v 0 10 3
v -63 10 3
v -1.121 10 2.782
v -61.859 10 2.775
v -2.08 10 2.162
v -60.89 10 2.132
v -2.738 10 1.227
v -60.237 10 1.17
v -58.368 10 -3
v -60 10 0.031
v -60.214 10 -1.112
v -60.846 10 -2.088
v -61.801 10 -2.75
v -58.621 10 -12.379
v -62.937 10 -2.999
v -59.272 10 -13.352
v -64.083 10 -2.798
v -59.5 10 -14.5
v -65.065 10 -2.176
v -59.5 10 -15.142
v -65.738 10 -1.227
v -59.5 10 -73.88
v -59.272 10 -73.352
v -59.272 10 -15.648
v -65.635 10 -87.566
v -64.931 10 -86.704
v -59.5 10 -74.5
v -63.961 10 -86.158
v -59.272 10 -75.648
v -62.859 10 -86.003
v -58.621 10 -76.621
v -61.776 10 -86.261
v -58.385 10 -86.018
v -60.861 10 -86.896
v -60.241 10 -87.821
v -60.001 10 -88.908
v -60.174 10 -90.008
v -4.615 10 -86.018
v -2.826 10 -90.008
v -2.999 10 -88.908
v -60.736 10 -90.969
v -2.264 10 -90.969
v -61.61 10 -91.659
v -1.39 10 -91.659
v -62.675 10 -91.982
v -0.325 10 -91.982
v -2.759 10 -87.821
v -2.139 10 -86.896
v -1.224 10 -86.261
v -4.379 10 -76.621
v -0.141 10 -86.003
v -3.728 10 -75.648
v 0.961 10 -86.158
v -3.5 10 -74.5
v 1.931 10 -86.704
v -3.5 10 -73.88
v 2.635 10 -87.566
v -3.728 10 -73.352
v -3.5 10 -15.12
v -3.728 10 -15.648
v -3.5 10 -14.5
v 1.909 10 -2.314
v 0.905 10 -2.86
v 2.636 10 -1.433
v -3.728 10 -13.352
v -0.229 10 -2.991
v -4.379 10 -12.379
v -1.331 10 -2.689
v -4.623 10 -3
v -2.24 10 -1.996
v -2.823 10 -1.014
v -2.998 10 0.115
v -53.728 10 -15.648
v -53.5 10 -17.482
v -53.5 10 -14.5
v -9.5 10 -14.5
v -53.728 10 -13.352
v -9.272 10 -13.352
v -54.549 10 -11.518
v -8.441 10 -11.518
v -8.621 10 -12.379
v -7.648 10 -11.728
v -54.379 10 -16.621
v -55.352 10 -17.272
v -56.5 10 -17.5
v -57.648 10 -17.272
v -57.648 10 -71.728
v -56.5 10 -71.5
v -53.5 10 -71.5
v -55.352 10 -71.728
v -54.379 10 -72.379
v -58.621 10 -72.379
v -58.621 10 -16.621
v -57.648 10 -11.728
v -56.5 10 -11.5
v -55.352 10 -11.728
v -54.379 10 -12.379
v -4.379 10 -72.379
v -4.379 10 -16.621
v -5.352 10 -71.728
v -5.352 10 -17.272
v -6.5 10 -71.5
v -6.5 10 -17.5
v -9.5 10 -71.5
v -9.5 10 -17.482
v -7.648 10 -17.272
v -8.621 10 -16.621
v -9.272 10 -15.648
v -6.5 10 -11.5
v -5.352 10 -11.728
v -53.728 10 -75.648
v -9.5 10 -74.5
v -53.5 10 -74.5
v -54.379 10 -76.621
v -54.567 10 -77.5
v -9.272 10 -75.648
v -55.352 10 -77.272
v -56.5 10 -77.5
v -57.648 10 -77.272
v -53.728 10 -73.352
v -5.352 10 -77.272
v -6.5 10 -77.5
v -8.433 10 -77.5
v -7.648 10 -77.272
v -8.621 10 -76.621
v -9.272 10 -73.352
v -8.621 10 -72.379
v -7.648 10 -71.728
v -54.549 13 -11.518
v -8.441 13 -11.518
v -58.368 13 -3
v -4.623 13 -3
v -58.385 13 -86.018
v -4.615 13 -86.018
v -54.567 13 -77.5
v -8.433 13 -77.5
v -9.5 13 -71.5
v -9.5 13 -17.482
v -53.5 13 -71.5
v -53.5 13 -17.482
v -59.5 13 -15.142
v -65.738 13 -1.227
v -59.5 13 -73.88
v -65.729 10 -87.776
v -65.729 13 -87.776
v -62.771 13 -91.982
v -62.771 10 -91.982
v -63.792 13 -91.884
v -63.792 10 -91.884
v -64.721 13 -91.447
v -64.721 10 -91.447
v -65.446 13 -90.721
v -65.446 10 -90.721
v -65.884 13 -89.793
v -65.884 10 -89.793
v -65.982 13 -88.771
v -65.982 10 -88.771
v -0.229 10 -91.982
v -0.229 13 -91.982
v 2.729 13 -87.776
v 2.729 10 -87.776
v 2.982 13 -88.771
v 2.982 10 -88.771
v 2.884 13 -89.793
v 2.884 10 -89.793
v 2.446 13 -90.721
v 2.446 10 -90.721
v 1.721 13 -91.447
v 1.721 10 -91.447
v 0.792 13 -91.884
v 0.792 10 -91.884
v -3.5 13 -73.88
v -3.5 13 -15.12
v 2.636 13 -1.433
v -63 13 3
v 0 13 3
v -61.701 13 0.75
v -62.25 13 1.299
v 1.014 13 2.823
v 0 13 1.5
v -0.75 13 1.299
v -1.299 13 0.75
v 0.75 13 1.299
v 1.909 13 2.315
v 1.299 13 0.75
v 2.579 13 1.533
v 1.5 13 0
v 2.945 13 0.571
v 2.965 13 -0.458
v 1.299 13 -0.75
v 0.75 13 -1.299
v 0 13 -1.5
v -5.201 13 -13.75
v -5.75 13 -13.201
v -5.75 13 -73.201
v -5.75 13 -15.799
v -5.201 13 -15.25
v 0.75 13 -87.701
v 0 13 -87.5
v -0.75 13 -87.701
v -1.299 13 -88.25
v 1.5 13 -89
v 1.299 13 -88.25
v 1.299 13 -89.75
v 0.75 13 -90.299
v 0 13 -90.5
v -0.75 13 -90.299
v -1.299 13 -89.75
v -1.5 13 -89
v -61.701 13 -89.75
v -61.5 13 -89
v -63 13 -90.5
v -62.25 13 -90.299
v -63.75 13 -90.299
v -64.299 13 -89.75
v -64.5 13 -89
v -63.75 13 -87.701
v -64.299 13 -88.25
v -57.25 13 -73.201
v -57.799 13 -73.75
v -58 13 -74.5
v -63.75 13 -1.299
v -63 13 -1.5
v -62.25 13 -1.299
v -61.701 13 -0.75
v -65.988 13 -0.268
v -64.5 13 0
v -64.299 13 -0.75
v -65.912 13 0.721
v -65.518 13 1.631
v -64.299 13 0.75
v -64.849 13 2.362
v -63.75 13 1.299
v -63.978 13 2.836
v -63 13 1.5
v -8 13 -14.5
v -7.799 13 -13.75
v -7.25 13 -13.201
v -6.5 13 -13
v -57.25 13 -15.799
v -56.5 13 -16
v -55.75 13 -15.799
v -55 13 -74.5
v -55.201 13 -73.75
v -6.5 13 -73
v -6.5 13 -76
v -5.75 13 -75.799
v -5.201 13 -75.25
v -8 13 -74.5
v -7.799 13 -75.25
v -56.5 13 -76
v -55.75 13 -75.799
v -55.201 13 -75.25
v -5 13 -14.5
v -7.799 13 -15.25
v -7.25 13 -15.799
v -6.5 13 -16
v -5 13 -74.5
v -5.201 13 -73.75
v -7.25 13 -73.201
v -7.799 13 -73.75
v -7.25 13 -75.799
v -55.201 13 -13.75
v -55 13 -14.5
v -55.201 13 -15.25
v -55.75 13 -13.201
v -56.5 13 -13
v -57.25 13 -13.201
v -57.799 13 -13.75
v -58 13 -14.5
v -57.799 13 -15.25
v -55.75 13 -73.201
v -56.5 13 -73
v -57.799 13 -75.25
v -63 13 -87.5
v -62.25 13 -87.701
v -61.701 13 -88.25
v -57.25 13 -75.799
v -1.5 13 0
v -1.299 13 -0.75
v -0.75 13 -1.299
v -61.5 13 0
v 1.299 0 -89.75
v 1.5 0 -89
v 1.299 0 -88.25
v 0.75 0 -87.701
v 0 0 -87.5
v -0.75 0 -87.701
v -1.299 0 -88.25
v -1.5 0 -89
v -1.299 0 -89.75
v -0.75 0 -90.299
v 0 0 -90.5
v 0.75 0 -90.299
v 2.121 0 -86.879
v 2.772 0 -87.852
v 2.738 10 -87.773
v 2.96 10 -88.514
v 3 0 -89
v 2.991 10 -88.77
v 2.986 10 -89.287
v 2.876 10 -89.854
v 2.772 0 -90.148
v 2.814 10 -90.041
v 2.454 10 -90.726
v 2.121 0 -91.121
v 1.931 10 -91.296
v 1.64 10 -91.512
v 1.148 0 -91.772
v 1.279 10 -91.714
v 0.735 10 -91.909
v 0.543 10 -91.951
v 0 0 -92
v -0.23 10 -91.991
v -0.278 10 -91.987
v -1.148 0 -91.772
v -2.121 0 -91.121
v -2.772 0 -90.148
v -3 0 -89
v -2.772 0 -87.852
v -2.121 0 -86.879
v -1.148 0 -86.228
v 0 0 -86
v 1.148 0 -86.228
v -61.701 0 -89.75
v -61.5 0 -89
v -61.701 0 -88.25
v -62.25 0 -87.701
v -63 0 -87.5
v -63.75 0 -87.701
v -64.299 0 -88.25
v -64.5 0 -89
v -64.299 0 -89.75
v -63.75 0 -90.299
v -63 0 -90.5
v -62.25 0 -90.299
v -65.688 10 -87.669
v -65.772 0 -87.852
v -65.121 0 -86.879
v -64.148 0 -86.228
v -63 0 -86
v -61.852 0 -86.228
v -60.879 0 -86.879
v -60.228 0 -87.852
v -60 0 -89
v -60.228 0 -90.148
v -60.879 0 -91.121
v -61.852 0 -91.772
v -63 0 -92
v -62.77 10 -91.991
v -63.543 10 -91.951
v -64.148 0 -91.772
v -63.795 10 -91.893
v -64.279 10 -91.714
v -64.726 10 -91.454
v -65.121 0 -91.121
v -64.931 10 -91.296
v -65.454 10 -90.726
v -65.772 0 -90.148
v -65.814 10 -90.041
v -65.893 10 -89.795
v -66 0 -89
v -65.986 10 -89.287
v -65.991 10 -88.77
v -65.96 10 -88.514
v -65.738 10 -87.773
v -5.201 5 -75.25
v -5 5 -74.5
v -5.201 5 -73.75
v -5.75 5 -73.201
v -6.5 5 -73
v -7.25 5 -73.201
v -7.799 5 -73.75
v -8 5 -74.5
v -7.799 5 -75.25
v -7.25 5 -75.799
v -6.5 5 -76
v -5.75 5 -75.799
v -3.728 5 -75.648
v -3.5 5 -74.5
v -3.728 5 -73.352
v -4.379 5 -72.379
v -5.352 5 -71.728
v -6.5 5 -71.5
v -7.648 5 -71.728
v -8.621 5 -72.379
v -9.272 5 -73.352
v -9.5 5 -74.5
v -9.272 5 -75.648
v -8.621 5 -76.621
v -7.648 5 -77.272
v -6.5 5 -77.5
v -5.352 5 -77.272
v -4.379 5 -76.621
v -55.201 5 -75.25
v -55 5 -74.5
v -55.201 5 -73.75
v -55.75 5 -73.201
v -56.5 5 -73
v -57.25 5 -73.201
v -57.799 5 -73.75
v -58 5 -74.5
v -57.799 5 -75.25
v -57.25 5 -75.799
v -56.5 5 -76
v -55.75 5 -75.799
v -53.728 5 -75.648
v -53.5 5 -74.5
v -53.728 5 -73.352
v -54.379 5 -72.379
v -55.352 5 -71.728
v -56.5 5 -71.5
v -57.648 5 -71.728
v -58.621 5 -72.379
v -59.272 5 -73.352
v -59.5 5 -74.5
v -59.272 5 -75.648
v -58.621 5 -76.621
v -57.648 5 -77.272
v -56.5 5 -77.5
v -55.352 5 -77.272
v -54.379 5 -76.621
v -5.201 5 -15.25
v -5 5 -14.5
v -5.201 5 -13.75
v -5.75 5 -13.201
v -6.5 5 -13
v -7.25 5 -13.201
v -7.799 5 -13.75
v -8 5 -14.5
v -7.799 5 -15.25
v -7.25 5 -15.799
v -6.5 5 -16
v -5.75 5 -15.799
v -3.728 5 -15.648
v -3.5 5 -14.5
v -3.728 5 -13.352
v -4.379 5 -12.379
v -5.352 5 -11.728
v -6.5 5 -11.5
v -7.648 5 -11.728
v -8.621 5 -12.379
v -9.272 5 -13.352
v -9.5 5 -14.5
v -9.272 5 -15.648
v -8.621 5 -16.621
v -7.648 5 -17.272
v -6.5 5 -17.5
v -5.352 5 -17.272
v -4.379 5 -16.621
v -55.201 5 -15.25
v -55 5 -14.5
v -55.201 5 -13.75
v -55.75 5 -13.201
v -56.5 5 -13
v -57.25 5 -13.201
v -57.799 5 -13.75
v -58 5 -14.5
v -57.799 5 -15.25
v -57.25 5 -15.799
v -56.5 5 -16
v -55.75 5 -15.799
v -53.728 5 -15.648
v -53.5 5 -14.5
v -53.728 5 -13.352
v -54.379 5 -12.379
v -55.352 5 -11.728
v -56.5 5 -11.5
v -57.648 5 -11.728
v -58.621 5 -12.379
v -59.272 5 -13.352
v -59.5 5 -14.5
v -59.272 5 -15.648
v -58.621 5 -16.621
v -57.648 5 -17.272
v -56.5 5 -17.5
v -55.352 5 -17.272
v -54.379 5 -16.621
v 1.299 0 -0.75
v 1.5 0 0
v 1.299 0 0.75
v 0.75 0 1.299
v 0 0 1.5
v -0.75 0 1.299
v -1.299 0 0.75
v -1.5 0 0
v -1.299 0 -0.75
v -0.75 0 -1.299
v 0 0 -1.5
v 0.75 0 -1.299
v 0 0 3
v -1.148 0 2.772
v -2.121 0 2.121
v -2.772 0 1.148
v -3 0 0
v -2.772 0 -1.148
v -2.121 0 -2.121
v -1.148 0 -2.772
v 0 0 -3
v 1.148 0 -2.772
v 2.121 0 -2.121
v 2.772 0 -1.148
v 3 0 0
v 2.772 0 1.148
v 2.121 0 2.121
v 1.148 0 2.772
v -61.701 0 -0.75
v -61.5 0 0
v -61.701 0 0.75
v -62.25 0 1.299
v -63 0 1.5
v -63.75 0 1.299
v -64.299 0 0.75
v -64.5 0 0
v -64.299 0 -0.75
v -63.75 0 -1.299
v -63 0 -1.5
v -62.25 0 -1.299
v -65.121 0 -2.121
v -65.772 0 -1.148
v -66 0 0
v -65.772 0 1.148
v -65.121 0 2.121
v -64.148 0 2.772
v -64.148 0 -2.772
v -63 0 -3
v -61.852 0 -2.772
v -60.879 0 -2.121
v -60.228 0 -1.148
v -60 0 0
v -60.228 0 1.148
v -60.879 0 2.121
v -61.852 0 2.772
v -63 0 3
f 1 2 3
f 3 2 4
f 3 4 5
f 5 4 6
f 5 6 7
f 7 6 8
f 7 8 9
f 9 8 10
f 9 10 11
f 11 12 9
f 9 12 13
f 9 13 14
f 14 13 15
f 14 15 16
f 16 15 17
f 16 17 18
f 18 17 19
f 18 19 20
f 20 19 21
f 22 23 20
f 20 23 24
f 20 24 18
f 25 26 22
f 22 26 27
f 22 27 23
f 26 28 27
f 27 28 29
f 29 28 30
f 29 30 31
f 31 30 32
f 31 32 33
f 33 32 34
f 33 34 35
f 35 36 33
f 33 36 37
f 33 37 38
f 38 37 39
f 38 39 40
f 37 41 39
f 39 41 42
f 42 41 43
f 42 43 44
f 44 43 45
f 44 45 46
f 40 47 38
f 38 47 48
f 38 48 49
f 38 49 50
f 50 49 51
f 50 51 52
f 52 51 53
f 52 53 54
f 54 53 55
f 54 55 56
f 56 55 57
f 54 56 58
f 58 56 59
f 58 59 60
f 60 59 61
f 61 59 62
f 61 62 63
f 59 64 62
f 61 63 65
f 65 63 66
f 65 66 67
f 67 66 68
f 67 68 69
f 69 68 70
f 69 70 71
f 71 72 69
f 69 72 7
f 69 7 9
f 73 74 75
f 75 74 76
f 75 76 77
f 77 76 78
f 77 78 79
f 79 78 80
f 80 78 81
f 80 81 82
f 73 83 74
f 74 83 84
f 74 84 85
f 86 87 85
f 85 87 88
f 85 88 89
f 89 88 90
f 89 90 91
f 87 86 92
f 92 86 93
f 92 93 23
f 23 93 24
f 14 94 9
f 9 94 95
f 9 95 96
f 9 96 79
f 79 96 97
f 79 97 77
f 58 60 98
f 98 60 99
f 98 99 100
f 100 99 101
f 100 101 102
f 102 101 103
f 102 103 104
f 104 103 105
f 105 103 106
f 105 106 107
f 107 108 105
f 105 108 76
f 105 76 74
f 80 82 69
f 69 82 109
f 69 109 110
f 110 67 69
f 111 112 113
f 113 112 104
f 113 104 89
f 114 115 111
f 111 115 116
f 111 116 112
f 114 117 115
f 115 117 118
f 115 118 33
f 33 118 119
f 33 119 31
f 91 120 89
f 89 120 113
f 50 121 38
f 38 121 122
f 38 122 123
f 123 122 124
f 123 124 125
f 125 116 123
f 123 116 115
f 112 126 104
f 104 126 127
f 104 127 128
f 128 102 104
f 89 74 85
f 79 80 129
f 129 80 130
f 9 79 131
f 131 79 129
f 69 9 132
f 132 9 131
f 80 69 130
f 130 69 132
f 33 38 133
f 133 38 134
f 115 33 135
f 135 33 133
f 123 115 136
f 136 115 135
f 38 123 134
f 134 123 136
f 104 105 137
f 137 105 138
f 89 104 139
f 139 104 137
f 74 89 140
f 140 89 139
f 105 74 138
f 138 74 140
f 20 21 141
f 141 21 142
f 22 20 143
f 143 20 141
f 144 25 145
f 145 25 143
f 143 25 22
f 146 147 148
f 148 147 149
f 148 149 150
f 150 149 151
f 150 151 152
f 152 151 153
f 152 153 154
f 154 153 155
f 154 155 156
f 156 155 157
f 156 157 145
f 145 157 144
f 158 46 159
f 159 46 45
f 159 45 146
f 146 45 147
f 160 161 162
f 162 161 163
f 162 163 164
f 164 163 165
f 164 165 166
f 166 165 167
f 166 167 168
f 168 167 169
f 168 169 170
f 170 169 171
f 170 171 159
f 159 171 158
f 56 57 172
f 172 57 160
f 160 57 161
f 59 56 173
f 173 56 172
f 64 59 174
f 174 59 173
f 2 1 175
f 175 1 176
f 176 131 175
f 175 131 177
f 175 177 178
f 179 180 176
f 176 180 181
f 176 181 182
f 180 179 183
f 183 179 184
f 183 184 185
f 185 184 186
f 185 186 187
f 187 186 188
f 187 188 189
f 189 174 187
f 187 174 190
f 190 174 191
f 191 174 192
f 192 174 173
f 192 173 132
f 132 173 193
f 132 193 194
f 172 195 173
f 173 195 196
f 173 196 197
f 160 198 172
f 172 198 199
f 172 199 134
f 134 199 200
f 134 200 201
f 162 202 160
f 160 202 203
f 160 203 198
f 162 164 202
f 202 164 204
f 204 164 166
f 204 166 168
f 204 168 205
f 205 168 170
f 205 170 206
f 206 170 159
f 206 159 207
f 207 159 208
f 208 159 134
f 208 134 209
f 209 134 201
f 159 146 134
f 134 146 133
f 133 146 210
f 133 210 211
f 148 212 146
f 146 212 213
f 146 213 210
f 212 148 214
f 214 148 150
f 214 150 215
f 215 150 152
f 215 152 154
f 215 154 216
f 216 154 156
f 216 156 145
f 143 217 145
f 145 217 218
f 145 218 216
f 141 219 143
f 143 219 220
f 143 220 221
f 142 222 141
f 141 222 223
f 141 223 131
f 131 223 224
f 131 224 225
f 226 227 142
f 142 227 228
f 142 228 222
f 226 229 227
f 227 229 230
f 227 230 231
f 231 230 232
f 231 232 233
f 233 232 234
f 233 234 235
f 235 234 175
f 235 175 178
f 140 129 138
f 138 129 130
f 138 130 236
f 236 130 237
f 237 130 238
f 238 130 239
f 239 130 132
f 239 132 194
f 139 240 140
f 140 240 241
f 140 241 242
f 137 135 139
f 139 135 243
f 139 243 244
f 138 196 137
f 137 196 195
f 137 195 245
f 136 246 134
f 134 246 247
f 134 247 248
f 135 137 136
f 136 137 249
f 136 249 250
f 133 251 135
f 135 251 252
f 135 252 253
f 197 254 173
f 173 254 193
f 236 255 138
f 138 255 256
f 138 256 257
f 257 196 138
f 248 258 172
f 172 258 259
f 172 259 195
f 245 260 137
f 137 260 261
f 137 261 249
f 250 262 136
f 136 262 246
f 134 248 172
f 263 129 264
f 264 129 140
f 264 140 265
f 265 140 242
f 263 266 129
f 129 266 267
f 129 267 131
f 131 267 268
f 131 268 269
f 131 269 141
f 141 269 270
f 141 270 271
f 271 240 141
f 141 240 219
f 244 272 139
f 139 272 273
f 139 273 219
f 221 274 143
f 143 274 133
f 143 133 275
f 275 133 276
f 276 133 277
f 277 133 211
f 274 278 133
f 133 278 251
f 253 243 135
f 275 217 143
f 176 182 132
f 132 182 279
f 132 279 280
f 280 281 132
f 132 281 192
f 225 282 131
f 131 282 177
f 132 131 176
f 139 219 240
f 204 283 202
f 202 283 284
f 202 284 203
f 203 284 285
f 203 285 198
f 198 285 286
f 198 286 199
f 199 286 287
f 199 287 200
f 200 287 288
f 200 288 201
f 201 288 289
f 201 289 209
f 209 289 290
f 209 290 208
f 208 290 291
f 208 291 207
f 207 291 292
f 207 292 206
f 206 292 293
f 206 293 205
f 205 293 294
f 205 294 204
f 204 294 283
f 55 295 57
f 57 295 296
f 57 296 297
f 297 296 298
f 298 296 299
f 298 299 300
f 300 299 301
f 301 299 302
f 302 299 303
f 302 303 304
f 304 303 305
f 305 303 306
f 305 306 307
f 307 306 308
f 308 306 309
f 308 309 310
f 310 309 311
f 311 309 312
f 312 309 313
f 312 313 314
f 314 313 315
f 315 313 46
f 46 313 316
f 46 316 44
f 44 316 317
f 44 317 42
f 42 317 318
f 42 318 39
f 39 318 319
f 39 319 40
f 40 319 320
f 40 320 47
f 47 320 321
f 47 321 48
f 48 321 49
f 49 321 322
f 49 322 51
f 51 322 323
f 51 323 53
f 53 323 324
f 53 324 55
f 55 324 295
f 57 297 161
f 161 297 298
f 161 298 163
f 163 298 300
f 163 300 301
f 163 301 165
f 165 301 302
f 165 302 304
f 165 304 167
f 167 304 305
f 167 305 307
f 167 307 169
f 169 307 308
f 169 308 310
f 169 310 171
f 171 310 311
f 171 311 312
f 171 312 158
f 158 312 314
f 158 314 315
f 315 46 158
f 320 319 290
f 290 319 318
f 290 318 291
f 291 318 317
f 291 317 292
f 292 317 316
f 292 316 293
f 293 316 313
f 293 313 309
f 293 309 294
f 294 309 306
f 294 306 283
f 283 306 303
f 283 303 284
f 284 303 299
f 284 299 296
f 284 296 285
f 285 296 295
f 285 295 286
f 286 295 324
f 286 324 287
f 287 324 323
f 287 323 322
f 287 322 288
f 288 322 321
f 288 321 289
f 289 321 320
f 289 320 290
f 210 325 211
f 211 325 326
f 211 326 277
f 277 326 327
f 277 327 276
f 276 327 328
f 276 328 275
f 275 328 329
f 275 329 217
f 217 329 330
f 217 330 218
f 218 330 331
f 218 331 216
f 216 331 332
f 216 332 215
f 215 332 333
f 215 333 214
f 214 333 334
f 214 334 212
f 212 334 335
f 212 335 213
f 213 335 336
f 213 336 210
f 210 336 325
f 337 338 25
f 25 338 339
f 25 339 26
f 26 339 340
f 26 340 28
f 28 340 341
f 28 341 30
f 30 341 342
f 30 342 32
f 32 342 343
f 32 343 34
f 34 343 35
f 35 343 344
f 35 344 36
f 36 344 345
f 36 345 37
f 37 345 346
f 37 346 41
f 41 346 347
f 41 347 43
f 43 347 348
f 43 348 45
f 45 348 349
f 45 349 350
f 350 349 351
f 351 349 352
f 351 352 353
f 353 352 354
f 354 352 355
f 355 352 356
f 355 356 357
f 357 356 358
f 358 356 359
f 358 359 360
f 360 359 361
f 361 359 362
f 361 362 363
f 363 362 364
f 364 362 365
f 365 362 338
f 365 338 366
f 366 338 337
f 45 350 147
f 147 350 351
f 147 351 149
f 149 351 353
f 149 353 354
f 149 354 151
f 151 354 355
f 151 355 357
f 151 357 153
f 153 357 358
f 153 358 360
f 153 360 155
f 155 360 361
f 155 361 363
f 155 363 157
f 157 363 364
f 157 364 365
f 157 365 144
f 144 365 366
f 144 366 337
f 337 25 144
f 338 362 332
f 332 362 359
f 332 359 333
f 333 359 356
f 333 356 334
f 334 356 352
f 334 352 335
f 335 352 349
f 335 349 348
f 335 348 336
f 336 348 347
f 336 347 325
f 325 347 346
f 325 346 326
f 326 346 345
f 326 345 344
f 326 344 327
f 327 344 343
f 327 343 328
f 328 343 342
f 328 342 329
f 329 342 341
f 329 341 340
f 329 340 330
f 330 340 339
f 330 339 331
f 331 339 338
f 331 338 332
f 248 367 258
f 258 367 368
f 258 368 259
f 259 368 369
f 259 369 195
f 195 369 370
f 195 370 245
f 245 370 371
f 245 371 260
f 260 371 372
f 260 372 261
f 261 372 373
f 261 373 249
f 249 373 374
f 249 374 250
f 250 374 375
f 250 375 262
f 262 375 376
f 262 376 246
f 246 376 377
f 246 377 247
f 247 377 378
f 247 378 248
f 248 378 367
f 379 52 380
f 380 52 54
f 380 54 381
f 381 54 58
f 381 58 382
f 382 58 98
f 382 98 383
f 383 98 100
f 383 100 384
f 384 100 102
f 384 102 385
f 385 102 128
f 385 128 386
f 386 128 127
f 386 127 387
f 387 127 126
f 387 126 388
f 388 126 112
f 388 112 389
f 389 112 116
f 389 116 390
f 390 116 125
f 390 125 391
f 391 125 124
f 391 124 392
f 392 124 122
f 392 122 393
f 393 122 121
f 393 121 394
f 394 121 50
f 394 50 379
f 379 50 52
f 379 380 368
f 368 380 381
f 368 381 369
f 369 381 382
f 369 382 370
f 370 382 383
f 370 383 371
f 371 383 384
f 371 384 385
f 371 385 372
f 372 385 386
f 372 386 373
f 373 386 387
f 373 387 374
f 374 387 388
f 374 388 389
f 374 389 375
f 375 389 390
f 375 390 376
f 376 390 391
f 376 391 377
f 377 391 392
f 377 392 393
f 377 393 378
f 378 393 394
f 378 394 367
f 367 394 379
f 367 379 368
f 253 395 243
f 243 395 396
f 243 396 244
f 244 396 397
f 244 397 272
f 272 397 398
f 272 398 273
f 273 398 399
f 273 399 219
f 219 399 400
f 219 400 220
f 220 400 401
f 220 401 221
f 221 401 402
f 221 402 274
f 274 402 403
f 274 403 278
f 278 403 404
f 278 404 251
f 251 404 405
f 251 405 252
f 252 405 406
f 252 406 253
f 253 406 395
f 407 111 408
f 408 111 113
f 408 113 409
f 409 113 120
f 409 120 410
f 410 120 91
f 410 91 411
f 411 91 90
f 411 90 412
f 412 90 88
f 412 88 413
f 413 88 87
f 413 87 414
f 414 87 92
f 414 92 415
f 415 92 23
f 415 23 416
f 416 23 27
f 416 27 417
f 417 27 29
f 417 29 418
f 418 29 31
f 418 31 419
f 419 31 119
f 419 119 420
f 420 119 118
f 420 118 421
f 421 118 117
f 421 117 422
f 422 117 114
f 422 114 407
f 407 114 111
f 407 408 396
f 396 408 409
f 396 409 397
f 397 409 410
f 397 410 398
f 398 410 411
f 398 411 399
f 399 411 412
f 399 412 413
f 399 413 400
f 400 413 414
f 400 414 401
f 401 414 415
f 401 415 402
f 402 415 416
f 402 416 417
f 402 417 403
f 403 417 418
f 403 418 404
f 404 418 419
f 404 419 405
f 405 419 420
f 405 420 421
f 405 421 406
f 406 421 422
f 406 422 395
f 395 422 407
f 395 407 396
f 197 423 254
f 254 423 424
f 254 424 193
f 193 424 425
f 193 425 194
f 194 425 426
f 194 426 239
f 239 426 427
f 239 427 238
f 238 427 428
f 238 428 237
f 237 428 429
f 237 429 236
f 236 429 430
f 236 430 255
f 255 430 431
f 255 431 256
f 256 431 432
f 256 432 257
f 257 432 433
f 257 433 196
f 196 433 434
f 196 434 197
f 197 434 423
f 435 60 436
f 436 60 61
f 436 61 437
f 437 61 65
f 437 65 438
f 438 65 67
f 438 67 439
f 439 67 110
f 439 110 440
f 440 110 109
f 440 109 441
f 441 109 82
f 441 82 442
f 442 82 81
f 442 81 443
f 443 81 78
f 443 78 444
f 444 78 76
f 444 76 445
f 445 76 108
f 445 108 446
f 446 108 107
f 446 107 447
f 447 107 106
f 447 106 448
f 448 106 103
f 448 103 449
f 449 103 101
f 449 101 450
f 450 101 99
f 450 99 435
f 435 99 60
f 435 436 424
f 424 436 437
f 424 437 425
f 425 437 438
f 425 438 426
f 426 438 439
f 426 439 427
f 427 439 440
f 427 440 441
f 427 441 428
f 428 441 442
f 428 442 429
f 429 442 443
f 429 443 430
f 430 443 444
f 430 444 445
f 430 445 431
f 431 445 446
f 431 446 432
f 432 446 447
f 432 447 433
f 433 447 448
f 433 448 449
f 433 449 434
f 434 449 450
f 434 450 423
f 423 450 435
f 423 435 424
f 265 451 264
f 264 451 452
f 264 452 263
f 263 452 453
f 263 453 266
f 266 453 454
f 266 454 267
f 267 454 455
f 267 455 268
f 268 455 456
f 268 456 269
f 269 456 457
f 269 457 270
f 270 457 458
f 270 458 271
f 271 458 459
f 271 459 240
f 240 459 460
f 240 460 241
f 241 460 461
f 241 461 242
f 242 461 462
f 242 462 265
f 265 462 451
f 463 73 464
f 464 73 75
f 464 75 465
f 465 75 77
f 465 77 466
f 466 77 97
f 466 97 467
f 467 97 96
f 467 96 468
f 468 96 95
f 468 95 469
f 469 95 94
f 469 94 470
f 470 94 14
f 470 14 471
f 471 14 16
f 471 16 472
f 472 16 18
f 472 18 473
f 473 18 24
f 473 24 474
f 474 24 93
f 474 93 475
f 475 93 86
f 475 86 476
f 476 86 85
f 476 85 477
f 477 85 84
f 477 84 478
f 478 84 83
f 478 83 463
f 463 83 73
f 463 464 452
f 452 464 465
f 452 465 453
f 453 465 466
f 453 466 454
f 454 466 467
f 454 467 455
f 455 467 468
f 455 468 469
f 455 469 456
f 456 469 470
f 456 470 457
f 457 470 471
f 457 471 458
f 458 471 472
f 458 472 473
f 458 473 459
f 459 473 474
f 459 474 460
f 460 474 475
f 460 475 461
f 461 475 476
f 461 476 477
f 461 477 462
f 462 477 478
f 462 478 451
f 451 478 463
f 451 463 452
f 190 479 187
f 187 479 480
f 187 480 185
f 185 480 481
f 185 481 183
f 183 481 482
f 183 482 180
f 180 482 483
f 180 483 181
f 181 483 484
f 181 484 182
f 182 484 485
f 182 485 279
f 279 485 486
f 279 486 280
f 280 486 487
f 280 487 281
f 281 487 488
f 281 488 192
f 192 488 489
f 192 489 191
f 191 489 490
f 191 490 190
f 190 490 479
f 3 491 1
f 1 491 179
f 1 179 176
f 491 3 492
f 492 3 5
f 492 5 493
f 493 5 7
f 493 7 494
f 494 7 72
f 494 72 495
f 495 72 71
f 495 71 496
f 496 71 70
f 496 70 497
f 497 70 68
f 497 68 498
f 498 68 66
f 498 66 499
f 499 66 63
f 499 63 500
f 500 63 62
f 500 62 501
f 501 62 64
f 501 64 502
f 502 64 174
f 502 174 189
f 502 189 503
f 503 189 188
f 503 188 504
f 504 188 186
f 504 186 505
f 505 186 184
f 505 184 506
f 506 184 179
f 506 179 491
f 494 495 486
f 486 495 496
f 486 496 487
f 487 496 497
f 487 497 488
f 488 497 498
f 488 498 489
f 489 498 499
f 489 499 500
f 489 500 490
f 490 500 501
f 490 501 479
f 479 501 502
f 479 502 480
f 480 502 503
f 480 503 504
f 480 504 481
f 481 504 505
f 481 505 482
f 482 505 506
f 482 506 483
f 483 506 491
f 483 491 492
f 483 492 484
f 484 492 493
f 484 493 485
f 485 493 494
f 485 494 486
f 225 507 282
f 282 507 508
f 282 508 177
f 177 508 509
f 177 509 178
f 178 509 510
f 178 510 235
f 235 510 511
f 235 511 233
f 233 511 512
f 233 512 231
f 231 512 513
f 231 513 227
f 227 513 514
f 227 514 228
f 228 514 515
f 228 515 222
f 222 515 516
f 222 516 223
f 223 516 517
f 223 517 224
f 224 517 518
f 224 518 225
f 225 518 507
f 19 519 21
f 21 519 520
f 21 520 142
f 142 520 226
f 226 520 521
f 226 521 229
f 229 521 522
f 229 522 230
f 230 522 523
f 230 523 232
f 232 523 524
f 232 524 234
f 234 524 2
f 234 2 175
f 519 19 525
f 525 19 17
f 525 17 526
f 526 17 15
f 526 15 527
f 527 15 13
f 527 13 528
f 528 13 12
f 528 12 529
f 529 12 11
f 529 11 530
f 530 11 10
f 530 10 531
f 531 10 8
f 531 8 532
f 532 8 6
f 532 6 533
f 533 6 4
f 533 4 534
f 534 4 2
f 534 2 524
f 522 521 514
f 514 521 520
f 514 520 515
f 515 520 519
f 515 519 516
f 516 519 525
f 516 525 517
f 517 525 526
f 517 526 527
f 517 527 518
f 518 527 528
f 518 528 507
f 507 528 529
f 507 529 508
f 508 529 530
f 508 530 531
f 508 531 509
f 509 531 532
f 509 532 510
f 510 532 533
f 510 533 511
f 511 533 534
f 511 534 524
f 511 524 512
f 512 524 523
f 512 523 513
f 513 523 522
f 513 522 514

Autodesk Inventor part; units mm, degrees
ref_plane "YZ Plane" through (0, 0, 0) normal (1, 0, 0) x (0, 1, 0)
ref_plane "XZ Plane" through (0, 0, 0) normal (0, 1, 0) x (-1, 0, 0)
ref_plane "XY Plane" through (0, 0, 0) normal (0, 0, 1) x (1, 0, 0)
sketch "Sketch1" plane through (0, 0, 0) normal (0, 1, 0) x (-1, 0, 0)
  line L0 (0, 0) -> (63, 0)
  line L1 (63, 0) -> (63, -89)
  line L2 (63, -89) -> (0, -89)
  line L3 (0, -89) -> (0, 0)
  circle A0 centre (0, 0) radius 1.5
  circle A1 centre (63, 0) radius 1.5
  circle A2 centre (0, -89) radius 1.5
  circle A3 centre (63, -89) radius 1.5
  circle A4 centre (0, 0) radius 3
  circle A5 centre (0, -89) radius 3
  circle A6 centre (63, -89) radius 3
  circle A7 centre (63, 0) radius 3
  dimension "d0" = 63
  dimension "d1" = 89
  dimension "d2" = 3
  dimension "d3" = 3
  dimension "d4" = 3
  dimension "d5" = 3
  dimension "d6" = 6
  dimension "d7" = 6
  dimension "d8" = 6
  dimension "d9" = 6
extrude "Extrusion1" add sketch "Sketch1" along normal blind 10 contours A0 L3 A4 L0 | L0 A4 L3 A0 | A7 L1 A1 L0 | L0 A1 L1 A7 | A5 L2 A2 L3 | L3 A2 L2 A5 | A6 L2 A3 L1 | L1 A3 L2 A6
sketch "Sketch2" plane through (0, 10, 0) normal (0, 1, 0) x (1, 0, 0)
  circle A0 centre (0, 0) radius 1.5 projected
  circle A1 centre (-63, 89) radius 1.5 projected
  line L0 (0, 0) -> (-63, 0)
  line L1 (-63, 0) -> (-63, 89)
  line L2 (-63, 89) -> (0, 89)
  line L3 (0, 89) -> (0, 0)
  line L4 (-63, 44.5) -> (-31.5, 44.5)
  line L5 (-6.5, 14.5) -> (-56.5, 14.5)
  line L6 (-56.5, 14.5) -> (-56.5, 74.5)
  line L7 (-56.5, 74.5) -> (-6.5, 74.5)
  line L8 (-6.5, 74.5) -> (-6.5, 14.5)
  line L9 (-6.5, 14.5) -> (-56.5, 74.5) construction
  line L10 (-56.5, 14.5) -> (-6.5, 74.5) construction
  circle A2 centre (-56.5, 14.5) radius 1.5
  circle A3 centre (-6.5, 14.5) radius 1.5
  circle A4 centre (-6.5, 74.5) radius 1.5
  circle A5 centre (-56.5, 74.5) radius 1.5
  circle A6 centre (-56.5, 14.5) radius 3
  circle A7 centre (-56.5, 74.5) radius 3
  circle A8 centre (-6.5, 14.5) radius 3
  circle A9 centre (-6.5, 74.5) radius 3
  dimension "d12" = 50
  dimension "d13" = 60
  dimension "d14" = 3
  dimension "d15" = 3
  dimension "d16" = 3
  dimension "d17" = 3
  dimension "d18" = 6
  dimension "d19" = 6
  dimension "d20" = 6
  dimension "d21" = 6
extrude "Extrusion2" add sketch "Sketch2" against normal blind 5 contours A6 L6 A2 L5 | L5 A2 L6 A6 | A8 L8 A3 L5 | L5 A3 L8 A8 | A9 L7 A4 L8 | L8 A4 L7 A9 | A7 L7 A5 L6 | L6 A5 L7 A7
sketch "Sketch3" plane through (-63, 10, 0) normal (0, 1, 0) x (1, 0, 0)
  circle A0 centre (0, 0) radius 1.5 projected
  circle A1 centre (6.5, 14.5) radius 1.5 projected
  line L0 (0, 0) -> (6.5, 14.5) construction
  line L1 (2.7375, -1.2272) -> (9.2375, 13.2728)
  line L2 (3.7625, 15.7272) -> (-2.7375, 1.2272)
  arc A2 (-2.7375, 1.2272) -> (2.7375, -1.2272) centre (0, 0) ccw
  arc A3 (9.2375, 13.2728) -> (3.7625, 15.7272) centre (6.5, 14.5) ccw
  circle A4 centre (6.5, 74.5) radius 1.5 projected
  line L3 (6.5, 14.5) -> (6.5, 74.5) construction
  line L4 (3.5, 14.5) -> (3.5, 74.5)
  line L5 (9.5, 74.5) -> (9.5, 14.5)
  arc A5 (3.5, 14.5) -> (9.5, 14.5) centre (6.5, 14.5) ccw
  arc A6 (9.5, 74.5) -> (3.5, 74.5) centre (6.5, 74.5) ccw
  circle A7 centre (0, 89) radius 1.5 projected
  line L6 (6.5, 74.5) -> (0, 89) construction
  line L7 (3.7705, 73.2764) -> (-2.7295, 87.7764)
  line L8 (2.7295, 90.2236) -> (9.2295, 75.7236)
  arc A8 (3.7705, 73.2764) -> (9.2295, 75.7236) centre (6.5, 74.5) ccw
  arc A9 (2.7295, 90.2236) -> (-2.7295, 87.7764) centre (0, 89) ccw
  circle A10 centre (63, 89) radius 1.5 projected
  line L9 (0, 89) -> (63, 89) construction
  line L10 (0, 86.0176) -> (63, 86.0176)
  line L11 (63, 91.9824) -> (0, 91.9824)
  arc A11 (0, 91.9824) -> (0, 86.0176) centre (0, 89) ccw
  arc A12 (63, 86.0176) -> (63, 91.9824) centre (63, 89) ccw
  circle A13 centre (56.5, 74.5) radius 1.5 projected
  line L12 (63, 89) -> (56.5, 74.5) construction
  line L13 (60.2705, 90.2236) -> (53.7705, 75.7236)
  line L14 (59.2295, 73.2764) -> (65.7295, 87.7764)
  arc A14 (65.7295, 87.7764) -> (60.2705, 90.2236) centre (63, 89) ccw
  arc A15 (53.7705, 75.7236) -> (59.2295, 73.2764) centre (56.5, 74.5) ccw
  circle A16 centre (56.5, 14.5) radius 1.5 projected
  line L15 (56.5, 74.5) -> (56.5, 14.5) construction
  line L16 (53.5, 74.5) -> (53.5, 14.5)
  line L17 (59.5, 14.5) -> (59.5, 74.5)
  arc A17 (59.5, 74.5) -> (53.5, 74.5) centre (56.5, 74.5) ccw
  arc A18 (53.5, 14.5) -> (59.5, 14.5) centre (56.5, 14.5) ccw
  line L18 (56.5, 14.5) -> (63, 0) construction
  line L19 (53.7705, 13.2764) -> (60.2705, -1.2236)
  line L20 (65.7295, 1.2236) -> (59.2295, 15.7236)
  arc A19 (59.2295, 15.7236) -> (53.7705, 13.2764) centre (56.5, 14.5) ccw
  arc A20 (60.2705, -1.2236) -> (65.7295, 1.2236) centre (63, 0) ccw
  line L21 (63, 0) -> (0, 0) construction
  line L22 (63, 3) -> (0, 3)
  line L23 (0, -3) -> (63, -3)
  arc A21 (63, -3) -> (63, 3) centre (63, 0) ccw
  arc A22 (0, 3) -> (0, -3) centre (0, 0) ccw
  line L24 (6.5, 14.5) -> (56.5, 14.5) construction
  line L25 (6.5, 11.5176) -> (56.5, 11.5176)
  line L26 (56.5, 17.4824) -> (6.5, 17.4824)
  arc A23 (6.5, 17.4824) -> (6.5, 11.5176) centre (6.5, 14.5) ccw
  arc A24 (56.5, 11.5176) -> (56.5, 17.4824) centre (56.5, 14.5) ccw
  line L27 (6.5, 74.5) -> (56.5, 74.5) construction
  line L28 (6.5, 77.5) -> (56.5, 77.5)
  line L29 (56.5, 71.5) -> (6.5, 71.5)
  arc A25 (6.5, 77.5) -> (6.5, 71.5) centre (6.5, 74.5) ccw
  arc A26 (56.5, 71.5) -> (56.5, 77.5) centre (56.5, 74.5) ccw
  circle A27 centre (63, 0) radius 1.5 projected
  circle A28 centre (63, 0) radius 1.5
  circle A29 centre (63, 89) radius 1.5
  circle A30 centre (0, 89) radius 1.5
  point P0 (3.25, 7.25)
  point P1 (6.5, 44.5)
  point P2 (3.25, 81.75)
  point P3 (31.5, 89)
  point P4 (59.75, 81.75)
  point P5 (56.5, 44.5)
  point P6 (59.75, 7.25)
  point P7 (31.5, 0)
  point P8 (31.5, 14.5)
  point P9 (31.5, 74.5)
  point P10 (0.2294, 91.9824)
  point P11 (3.5, 73.8799)
  point P12 (3.5, 15.1417)
  point P13 (65.6357, 1.4329)
  point P14 (59.5, 15.1202)
  point P15 (59.5, 73.8799)
  point P16 (62.7706, 91.9824)
  point P17 (54.5589, 11.5176)
  point P18 (58.3772, 3)
  point P19 (4.6325, 3)
  point P20 (8.4507, 11.5176)
  point P21 (53.5, 17.4824)
  point P22 (9.5, 17.4824)
  point P23 (9.5, 71.5)
  point P24 (53.5, 71.5)
  point P25 (4.6149, 86.0176)
  point P26 (58.3851, 86.0176)
  point P27 (54.5669, 77.5)
  point P28 (8.4331, 77.5)
  point P29 (3.5, 22.3126)
  point P30 (9.5, 14.5)
  point P31 (9.1353, 75.9335)
  point P32 (53.8647, 75.9335)
  point P33 (53.8643, 13.0671)
  point P34 (7.8263, -3)
  point P35 (14.3193, 11.5176)
  point P36 (6.8244, 17.4824)
  point P37 (56.2706, 17.4824)
  point P38 (3.6764, 73.4864)
  point P39 (6.2021, 82.4768)
  point P40 (56.7979, 82.4768)
  point P41 (59.3236, 73.4864)
  dimension "d26" = 6
  dimension "d27" = 6
extrude "Extrusion3" add sketch "Sketch3" along normal blind 3 contours A2 A22 L22 L1 | L1 L22 L19 A20 L20 A21 L23 A2 | L22 A22 L2 L4 A5 L25 L1 | L25 A5 L1 | L1 A3 L5 L26 L16 A18 L19 L25 | L22 A21 L20 A20 L19 | L19 L25 A18 L17 L20 A21 L22 | A5 L25 A23 L26 A3 | A5 L4 L2 A3 L26 A23 L25 | L19 A18 L25 | L4 L7 A25 L29 L5 L26 A3 L2 | A3 L26 L5 | L19 A19 L26 A24 L25 A18 | A18 L16 L26 A19 L19 | L25 A24 L26 A19 L20 L17 A18 | L7 A9 L11 A11 L10 L8 L28 A6 L4 | L4 A25 L7 | L20 A19 L26 L16 L29 A26 L14 L17 | A6 L8 A8 L7 A25 | L7 A8 L8 A6 L5 L29 A25 | L17 A17 L28 L13 L10 A12 L11 A14 L14 | L14 A26 L17 | L5 A6 L8 L28 L13 A17 L16 L29 | L28 L8 A6 | L11 A14 L13 L10 L8 A9 | A9 L8 L10 A11 L11 | A26 L29 L16 A17 L13 A15 L14 | L14 A15 L13 A17 A26 | L11 A12 L10 L13 A14 | A17 L13 L28
properties part number "RP_mounting_cover"
